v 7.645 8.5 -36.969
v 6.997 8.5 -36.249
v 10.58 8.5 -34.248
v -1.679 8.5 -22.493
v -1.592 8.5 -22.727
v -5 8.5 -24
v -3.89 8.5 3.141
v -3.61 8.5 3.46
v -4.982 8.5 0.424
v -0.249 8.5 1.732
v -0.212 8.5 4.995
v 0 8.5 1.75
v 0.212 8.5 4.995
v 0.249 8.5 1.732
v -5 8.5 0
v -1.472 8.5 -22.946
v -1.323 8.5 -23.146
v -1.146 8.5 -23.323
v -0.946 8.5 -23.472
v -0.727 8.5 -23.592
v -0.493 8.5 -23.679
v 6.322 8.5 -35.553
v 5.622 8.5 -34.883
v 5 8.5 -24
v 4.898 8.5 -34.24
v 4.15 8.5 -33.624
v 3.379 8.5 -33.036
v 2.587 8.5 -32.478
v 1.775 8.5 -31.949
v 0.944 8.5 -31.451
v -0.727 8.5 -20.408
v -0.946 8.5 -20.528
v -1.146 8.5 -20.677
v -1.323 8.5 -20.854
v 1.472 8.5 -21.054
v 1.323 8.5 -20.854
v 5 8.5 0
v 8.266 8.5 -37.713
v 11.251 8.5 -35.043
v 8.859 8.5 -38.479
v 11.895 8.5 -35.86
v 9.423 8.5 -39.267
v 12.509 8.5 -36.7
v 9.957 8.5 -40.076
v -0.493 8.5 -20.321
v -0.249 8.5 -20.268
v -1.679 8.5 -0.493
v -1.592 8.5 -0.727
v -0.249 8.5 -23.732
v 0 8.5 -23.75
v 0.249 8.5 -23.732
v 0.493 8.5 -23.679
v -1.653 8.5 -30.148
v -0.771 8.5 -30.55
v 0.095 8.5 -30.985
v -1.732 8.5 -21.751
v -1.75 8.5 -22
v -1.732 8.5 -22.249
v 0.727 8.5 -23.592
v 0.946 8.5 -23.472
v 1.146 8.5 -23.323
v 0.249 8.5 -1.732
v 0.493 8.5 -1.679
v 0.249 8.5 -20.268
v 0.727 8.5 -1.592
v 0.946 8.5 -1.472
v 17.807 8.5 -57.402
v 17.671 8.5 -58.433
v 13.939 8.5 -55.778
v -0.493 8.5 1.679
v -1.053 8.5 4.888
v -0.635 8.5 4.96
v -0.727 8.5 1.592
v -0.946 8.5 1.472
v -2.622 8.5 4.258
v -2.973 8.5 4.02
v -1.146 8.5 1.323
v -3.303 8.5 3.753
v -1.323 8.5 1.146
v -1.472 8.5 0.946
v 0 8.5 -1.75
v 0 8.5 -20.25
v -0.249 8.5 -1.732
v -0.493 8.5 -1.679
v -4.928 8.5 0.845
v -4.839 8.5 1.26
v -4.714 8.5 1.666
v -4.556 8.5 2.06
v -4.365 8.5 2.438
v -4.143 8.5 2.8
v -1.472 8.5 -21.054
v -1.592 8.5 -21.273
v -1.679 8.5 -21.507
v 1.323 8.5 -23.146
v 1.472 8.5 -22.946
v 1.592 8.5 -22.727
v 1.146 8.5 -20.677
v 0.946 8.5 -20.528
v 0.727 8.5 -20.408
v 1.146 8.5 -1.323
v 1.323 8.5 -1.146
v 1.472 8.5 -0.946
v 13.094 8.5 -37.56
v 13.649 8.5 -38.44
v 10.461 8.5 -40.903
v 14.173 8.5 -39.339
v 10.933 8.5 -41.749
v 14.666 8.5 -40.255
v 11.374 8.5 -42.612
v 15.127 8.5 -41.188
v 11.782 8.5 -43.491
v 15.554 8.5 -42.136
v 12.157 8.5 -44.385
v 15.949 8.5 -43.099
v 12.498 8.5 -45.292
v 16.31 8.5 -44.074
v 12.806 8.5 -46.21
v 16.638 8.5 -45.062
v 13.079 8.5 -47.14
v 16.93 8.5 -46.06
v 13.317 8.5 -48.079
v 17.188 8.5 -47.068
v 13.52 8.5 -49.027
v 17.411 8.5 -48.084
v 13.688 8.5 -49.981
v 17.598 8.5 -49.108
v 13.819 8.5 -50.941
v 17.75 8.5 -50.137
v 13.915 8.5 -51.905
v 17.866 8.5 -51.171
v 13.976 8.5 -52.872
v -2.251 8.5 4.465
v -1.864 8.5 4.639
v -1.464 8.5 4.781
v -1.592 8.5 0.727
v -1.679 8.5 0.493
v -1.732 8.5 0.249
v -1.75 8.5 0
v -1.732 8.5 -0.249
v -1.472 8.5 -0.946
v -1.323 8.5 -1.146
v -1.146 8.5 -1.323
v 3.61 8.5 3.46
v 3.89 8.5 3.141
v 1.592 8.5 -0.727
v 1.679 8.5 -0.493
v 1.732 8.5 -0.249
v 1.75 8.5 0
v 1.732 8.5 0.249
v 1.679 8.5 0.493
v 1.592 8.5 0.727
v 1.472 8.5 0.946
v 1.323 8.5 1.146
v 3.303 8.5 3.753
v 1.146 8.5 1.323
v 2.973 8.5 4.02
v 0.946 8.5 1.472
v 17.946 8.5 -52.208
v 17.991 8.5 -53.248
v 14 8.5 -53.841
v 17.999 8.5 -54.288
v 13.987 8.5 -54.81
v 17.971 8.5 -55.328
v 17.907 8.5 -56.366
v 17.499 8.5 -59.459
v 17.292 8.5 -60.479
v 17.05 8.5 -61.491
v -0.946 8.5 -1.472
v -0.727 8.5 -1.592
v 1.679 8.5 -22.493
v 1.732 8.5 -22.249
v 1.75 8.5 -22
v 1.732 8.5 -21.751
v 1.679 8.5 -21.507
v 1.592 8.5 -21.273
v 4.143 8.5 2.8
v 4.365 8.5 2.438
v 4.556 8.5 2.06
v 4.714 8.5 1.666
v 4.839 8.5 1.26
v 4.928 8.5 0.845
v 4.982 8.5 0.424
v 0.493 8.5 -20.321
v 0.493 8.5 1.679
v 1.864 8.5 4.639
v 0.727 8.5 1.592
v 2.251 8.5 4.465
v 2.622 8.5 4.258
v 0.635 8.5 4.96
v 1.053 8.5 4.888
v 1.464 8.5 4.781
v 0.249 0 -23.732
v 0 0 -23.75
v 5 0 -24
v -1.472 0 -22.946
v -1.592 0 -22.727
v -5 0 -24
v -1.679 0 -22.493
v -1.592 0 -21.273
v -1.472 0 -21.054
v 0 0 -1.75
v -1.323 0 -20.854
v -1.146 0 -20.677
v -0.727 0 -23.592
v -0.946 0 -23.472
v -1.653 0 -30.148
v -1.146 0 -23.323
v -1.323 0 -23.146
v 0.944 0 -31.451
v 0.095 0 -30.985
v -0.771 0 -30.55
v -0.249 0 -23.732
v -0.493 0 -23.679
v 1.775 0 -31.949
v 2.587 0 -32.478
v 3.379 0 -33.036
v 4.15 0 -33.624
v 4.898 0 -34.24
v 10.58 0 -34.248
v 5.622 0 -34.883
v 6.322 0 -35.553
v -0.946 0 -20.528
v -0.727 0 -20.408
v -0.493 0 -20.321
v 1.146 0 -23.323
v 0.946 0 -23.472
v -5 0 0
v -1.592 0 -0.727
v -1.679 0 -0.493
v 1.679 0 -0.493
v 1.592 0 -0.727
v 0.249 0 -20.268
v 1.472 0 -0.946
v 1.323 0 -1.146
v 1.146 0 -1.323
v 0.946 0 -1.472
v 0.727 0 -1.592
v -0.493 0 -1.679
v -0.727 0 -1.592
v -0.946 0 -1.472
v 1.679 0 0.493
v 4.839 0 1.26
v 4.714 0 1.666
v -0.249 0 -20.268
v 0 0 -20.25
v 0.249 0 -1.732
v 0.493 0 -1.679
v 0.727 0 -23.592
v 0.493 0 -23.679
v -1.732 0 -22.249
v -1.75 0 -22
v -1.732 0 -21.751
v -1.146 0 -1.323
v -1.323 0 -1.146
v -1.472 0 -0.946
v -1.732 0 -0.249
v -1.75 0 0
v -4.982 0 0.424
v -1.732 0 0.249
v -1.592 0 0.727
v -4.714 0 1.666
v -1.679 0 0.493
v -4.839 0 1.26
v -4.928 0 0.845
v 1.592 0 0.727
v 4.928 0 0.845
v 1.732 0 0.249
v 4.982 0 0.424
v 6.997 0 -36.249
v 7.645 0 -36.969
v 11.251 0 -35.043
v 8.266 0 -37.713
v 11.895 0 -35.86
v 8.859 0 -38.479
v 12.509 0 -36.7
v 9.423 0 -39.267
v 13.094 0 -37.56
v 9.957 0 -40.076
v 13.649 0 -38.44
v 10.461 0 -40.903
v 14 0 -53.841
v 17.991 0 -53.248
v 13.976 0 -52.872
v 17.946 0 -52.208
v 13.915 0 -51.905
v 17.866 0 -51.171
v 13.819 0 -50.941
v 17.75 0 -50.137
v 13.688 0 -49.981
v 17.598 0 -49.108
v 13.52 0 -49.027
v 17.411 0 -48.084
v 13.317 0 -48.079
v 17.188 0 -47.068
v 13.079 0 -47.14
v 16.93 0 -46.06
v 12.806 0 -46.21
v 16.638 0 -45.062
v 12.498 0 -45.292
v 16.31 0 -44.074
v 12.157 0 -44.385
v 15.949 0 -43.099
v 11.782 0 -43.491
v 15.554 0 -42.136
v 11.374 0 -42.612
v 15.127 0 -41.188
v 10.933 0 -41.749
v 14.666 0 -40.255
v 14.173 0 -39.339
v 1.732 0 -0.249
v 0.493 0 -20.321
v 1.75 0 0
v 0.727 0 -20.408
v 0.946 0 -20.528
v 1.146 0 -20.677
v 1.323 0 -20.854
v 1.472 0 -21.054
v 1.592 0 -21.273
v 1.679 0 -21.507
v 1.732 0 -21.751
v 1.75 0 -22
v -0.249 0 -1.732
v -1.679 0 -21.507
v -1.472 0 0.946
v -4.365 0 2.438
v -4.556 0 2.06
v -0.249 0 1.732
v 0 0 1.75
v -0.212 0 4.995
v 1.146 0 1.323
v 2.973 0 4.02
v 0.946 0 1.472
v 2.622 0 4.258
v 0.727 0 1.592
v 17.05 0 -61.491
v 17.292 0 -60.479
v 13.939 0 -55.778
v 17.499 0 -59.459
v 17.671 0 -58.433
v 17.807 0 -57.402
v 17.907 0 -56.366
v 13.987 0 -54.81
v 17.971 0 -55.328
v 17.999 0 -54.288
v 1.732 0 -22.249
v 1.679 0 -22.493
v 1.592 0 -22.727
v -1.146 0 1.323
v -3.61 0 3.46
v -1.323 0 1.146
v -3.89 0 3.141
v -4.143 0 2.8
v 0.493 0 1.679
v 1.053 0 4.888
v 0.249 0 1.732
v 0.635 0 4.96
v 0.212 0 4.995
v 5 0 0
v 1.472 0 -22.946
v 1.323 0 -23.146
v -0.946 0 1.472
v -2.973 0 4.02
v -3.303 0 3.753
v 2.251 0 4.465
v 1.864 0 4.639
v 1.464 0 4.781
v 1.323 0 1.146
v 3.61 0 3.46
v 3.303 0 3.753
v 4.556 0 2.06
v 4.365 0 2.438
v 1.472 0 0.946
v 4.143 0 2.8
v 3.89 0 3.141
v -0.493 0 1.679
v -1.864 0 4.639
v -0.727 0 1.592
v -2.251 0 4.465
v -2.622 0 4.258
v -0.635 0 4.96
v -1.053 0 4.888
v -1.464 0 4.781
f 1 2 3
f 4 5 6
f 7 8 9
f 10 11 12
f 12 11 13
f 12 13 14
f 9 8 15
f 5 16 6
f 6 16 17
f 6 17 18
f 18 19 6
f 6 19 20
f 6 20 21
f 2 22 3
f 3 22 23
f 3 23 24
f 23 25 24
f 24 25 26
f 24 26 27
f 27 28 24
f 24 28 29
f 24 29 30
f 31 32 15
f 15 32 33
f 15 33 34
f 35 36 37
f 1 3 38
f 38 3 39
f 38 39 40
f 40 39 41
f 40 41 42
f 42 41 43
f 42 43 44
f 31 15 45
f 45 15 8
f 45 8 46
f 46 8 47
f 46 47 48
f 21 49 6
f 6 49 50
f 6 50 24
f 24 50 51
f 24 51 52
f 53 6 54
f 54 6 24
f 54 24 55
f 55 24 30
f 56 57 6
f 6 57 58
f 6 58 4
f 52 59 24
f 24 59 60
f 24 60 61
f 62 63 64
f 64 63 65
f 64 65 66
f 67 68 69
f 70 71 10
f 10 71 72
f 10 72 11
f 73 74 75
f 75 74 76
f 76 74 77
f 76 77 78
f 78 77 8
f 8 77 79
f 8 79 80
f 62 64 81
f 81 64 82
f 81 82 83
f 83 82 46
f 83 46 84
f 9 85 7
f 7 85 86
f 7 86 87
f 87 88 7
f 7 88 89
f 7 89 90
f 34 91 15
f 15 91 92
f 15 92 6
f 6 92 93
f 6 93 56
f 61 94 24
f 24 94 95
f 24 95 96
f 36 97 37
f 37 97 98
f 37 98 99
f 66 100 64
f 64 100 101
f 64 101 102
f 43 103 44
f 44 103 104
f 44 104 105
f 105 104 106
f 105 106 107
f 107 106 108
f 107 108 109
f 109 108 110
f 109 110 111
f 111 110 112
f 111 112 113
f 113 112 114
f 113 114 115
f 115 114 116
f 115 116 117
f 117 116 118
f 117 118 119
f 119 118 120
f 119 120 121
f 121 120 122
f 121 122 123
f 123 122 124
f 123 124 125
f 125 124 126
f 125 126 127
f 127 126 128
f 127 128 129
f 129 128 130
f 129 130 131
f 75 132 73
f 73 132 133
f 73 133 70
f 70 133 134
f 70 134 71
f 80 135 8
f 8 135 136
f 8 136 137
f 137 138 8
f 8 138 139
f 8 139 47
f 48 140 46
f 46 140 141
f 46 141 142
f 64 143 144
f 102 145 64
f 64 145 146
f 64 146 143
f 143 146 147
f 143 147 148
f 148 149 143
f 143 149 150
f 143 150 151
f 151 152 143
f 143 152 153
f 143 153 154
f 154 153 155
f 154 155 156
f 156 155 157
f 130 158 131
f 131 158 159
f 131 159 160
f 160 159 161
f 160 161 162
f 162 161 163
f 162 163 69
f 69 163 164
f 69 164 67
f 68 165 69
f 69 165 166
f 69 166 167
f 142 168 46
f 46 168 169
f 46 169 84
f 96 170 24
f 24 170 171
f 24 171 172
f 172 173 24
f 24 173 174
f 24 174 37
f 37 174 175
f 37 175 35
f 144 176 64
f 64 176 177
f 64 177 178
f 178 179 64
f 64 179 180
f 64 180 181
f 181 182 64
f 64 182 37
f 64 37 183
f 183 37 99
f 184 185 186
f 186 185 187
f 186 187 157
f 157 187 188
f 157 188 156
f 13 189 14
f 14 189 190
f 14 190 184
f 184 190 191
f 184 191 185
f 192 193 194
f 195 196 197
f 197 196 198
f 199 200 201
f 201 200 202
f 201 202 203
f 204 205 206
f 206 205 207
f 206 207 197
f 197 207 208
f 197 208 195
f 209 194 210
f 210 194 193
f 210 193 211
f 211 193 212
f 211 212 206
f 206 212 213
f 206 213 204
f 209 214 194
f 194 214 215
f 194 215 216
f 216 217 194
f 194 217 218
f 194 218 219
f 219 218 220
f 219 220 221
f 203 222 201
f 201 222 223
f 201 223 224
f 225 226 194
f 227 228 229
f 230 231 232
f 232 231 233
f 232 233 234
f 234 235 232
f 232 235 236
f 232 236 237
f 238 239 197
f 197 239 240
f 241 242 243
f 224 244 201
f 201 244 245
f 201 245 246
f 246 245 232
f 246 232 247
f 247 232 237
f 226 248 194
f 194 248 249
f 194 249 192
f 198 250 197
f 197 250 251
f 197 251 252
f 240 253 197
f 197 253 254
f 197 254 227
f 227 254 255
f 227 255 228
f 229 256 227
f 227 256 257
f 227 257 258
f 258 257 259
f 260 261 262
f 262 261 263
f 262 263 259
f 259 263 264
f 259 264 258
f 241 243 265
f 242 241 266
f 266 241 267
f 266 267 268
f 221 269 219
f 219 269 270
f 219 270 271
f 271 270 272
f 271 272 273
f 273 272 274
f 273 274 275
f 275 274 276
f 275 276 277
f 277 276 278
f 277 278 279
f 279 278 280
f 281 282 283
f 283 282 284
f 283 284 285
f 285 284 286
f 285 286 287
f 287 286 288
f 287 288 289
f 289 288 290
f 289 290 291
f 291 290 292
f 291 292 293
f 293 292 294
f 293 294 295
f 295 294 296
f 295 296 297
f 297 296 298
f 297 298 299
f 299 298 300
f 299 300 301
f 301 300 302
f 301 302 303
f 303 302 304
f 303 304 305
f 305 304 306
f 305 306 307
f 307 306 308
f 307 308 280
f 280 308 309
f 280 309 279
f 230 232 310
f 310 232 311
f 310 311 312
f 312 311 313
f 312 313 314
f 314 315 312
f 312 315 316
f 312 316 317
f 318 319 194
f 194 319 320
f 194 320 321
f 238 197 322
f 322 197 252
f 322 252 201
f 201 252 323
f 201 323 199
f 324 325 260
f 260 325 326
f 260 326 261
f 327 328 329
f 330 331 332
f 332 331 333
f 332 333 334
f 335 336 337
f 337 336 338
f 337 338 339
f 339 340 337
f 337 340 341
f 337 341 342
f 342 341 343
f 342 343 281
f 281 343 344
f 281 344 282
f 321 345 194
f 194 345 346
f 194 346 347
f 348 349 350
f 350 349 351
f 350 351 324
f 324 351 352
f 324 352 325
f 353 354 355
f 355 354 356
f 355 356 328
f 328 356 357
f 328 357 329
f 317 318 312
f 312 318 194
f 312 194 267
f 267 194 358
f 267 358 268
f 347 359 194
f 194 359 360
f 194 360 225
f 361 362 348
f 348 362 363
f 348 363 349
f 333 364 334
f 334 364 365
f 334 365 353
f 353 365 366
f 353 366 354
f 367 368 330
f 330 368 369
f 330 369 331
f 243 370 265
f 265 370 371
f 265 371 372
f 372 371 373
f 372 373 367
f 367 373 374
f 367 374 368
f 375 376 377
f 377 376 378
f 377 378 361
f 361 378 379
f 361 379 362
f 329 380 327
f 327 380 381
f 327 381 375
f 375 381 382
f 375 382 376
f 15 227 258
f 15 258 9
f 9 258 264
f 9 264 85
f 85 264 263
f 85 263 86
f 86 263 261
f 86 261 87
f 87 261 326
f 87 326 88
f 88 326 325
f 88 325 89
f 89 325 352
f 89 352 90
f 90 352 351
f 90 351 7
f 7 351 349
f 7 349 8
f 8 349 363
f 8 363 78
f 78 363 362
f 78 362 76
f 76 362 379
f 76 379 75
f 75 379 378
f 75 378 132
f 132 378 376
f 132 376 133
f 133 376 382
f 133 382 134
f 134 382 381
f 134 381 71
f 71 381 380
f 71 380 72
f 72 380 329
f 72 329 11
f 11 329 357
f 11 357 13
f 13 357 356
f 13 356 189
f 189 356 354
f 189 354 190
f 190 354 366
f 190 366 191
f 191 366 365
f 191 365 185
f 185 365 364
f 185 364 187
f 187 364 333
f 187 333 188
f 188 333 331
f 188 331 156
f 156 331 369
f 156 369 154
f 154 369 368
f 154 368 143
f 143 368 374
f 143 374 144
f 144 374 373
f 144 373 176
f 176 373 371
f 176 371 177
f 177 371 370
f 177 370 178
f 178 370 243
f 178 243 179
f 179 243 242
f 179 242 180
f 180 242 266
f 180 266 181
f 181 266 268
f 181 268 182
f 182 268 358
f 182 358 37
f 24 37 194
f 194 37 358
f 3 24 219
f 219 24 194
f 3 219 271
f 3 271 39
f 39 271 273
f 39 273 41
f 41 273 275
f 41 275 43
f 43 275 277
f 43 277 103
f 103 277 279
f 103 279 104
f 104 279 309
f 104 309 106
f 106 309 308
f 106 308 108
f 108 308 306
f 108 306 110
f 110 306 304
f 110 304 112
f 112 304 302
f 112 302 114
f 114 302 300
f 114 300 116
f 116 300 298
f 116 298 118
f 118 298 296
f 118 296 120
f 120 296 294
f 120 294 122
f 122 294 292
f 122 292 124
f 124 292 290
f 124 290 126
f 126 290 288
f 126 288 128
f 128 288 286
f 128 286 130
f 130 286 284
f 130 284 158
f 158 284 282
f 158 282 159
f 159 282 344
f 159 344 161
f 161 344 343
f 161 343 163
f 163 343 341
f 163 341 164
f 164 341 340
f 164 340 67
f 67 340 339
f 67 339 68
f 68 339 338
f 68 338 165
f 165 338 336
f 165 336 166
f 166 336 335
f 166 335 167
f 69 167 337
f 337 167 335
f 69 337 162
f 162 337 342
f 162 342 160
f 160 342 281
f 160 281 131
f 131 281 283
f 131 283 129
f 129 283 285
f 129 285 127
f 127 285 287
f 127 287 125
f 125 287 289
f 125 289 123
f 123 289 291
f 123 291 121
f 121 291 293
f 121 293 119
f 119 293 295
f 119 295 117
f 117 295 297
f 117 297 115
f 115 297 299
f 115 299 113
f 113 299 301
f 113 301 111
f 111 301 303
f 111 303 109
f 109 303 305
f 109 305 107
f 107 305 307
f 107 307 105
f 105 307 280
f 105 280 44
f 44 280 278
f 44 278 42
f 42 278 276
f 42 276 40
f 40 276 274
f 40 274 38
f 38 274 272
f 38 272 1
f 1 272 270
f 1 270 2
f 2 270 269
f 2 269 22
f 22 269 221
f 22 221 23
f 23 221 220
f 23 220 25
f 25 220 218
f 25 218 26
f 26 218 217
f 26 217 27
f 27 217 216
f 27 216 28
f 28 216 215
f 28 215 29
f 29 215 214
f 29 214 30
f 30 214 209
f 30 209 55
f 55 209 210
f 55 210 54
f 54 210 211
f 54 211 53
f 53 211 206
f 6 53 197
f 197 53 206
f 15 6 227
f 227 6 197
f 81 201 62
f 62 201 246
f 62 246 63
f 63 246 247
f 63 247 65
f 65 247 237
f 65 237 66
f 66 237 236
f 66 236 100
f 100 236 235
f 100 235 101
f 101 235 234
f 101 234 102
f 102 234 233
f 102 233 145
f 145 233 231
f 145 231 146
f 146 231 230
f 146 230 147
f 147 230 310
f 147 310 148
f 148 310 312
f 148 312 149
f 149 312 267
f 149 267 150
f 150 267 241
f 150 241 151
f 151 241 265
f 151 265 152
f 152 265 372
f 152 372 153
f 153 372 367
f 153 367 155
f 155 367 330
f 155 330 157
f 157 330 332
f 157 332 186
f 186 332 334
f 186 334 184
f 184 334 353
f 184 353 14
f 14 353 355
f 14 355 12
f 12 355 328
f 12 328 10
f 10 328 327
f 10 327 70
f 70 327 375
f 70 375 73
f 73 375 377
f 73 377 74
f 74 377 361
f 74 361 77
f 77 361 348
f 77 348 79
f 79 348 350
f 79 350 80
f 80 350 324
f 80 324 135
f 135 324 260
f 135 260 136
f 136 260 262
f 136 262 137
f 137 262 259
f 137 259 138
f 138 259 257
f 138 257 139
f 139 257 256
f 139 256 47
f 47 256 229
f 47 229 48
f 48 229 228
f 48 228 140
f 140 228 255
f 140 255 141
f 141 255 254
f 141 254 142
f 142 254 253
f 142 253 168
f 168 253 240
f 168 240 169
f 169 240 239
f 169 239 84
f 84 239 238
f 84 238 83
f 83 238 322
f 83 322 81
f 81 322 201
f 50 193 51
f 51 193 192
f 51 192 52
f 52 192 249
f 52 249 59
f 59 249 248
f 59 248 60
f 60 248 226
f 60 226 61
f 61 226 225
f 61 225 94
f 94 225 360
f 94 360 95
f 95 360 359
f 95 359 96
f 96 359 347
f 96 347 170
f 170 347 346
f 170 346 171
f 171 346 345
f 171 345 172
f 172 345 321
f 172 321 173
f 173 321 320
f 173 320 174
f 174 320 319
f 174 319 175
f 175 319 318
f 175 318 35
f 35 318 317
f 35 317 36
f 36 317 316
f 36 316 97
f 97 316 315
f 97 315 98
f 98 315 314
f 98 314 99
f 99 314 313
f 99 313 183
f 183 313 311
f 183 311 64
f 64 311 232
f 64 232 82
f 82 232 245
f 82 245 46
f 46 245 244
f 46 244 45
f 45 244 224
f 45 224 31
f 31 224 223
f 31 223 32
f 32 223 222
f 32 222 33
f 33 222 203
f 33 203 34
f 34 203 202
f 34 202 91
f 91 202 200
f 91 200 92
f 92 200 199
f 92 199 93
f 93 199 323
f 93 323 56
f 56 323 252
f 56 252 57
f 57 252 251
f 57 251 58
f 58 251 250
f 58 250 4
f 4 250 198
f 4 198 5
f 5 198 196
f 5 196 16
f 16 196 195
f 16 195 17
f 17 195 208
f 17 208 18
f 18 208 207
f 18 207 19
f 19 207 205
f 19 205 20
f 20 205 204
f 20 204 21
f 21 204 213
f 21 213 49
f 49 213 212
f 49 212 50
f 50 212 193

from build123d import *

# Parameters (mm, degrees)
SKETCH_1_R      = 1.75
EXTRUDE_1_DEPTH = 8.5


with BuildPart() as part:
    # 草图1 → 凸台-拉伸1 (new body)
    with BuildSketch(Plane(origin=(0, 0, 0), x_dir=(1, 0, 0), z_dir=(0, 1, 0))):
        with BuildLine():
            Line((-5, 0), (-5, 24))
            Line((-5, 24), (-1.652561305, 30.147735696))
            ThreePointArc((-1.652561305, 30.147735696), (10.212693953, 40.487182849), (13.939150793, 55.777767179))
            Line((13.939150793, 55.777767179), (17.049795585, 61.490619233))
            ThreePointArc((17.049795585, 61.490619233), (17.188178873, 47.06817383), (10.58000386, 34.247951355))
            Line((10.58000386, 34.247951355), (5, 24))
            Line((5, 24), (5, 0))
            ThreePointArc((5, 0), (0, -5), (-5, 0))
        make_face()
        with Locations(Location((0, 0, 0), (0, 0, 270))):
            Circle(SKETCH_1_R, mode=Mode.SUBTRACT)
        with Locations(Location((0, 22, 0), (0, 0, 270))):
            Circle(SKETCH_1_R, mode=Mode.SUBTRACT)
    extrude(amount=EXTRUDE_1_DEPTH)


solid = part.part
